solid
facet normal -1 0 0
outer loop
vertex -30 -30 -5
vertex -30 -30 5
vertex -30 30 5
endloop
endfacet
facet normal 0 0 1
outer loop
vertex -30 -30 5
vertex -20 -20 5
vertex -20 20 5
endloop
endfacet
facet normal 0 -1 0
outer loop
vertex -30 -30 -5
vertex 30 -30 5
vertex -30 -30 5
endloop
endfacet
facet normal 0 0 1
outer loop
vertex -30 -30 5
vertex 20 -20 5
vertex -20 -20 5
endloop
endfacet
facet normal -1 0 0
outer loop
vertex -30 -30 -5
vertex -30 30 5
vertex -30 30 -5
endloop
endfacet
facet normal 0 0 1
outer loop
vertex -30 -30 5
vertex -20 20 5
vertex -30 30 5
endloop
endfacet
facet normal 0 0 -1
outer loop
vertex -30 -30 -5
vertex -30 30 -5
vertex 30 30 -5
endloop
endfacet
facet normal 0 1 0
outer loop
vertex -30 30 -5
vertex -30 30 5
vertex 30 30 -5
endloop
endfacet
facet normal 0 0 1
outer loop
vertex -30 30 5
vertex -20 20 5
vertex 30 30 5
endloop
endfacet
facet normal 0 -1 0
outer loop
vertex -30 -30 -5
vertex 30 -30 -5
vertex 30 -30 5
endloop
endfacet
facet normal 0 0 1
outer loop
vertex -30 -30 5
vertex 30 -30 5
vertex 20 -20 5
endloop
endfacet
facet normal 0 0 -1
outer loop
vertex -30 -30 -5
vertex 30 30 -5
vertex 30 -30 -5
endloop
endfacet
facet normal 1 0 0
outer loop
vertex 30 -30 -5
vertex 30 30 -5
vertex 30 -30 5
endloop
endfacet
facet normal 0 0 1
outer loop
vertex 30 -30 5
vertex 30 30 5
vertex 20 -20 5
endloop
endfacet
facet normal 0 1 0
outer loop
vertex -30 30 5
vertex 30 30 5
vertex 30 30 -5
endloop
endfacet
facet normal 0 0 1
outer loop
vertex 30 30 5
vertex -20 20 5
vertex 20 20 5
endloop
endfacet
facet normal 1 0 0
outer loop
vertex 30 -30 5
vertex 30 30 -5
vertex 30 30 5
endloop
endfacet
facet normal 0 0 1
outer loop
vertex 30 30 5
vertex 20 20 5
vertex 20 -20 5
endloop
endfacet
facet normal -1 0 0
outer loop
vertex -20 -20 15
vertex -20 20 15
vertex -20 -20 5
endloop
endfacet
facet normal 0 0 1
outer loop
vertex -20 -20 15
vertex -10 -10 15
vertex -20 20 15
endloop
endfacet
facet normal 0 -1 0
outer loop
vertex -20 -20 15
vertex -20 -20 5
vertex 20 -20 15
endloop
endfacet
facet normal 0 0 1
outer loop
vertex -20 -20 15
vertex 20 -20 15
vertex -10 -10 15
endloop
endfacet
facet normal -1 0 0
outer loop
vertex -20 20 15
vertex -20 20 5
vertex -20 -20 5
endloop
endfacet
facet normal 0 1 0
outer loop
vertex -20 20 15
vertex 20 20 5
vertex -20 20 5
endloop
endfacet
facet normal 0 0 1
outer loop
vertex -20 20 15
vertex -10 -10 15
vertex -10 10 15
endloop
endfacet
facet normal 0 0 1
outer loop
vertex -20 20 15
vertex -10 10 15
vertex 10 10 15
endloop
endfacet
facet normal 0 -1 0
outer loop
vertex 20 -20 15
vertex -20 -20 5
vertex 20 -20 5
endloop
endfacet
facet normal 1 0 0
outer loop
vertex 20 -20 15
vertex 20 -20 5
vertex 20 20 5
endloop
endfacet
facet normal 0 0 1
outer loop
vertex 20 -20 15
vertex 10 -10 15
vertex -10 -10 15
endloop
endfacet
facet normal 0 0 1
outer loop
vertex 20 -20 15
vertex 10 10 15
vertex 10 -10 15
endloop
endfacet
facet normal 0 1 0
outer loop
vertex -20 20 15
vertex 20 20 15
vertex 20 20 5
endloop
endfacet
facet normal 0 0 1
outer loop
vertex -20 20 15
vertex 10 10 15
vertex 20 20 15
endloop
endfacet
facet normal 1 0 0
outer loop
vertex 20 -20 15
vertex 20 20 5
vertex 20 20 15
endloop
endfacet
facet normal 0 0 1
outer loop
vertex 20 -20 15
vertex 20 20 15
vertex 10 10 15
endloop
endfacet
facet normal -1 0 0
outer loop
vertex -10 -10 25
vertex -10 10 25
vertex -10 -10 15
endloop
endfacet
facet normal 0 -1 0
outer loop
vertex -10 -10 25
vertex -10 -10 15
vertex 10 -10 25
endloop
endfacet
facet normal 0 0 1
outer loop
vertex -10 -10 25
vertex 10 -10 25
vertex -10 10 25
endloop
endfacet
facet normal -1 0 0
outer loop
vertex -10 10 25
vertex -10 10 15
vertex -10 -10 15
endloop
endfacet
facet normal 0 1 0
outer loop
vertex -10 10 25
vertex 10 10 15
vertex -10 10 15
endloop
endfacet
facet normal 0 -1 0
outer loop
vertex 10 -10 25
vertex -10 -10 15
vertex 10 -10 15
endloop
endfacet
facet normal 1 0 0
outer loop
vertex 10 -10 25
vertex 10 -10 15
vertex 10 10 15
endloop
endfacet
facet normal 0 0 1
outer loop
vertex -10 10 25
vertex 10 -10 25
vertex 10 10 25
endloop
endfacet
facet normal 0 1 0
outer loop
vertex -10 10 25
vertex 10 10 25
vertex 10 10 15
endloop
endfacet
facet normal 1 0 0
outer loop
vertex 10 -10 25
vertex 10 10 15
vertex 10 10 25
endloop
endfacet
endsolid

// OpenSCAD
module layer(size) {
    cube([size, size, 10], center=true);
}

layer(60);
translate([0, 0, 10]) layer(40);
translate([0, 0, 20]) layer(20);
